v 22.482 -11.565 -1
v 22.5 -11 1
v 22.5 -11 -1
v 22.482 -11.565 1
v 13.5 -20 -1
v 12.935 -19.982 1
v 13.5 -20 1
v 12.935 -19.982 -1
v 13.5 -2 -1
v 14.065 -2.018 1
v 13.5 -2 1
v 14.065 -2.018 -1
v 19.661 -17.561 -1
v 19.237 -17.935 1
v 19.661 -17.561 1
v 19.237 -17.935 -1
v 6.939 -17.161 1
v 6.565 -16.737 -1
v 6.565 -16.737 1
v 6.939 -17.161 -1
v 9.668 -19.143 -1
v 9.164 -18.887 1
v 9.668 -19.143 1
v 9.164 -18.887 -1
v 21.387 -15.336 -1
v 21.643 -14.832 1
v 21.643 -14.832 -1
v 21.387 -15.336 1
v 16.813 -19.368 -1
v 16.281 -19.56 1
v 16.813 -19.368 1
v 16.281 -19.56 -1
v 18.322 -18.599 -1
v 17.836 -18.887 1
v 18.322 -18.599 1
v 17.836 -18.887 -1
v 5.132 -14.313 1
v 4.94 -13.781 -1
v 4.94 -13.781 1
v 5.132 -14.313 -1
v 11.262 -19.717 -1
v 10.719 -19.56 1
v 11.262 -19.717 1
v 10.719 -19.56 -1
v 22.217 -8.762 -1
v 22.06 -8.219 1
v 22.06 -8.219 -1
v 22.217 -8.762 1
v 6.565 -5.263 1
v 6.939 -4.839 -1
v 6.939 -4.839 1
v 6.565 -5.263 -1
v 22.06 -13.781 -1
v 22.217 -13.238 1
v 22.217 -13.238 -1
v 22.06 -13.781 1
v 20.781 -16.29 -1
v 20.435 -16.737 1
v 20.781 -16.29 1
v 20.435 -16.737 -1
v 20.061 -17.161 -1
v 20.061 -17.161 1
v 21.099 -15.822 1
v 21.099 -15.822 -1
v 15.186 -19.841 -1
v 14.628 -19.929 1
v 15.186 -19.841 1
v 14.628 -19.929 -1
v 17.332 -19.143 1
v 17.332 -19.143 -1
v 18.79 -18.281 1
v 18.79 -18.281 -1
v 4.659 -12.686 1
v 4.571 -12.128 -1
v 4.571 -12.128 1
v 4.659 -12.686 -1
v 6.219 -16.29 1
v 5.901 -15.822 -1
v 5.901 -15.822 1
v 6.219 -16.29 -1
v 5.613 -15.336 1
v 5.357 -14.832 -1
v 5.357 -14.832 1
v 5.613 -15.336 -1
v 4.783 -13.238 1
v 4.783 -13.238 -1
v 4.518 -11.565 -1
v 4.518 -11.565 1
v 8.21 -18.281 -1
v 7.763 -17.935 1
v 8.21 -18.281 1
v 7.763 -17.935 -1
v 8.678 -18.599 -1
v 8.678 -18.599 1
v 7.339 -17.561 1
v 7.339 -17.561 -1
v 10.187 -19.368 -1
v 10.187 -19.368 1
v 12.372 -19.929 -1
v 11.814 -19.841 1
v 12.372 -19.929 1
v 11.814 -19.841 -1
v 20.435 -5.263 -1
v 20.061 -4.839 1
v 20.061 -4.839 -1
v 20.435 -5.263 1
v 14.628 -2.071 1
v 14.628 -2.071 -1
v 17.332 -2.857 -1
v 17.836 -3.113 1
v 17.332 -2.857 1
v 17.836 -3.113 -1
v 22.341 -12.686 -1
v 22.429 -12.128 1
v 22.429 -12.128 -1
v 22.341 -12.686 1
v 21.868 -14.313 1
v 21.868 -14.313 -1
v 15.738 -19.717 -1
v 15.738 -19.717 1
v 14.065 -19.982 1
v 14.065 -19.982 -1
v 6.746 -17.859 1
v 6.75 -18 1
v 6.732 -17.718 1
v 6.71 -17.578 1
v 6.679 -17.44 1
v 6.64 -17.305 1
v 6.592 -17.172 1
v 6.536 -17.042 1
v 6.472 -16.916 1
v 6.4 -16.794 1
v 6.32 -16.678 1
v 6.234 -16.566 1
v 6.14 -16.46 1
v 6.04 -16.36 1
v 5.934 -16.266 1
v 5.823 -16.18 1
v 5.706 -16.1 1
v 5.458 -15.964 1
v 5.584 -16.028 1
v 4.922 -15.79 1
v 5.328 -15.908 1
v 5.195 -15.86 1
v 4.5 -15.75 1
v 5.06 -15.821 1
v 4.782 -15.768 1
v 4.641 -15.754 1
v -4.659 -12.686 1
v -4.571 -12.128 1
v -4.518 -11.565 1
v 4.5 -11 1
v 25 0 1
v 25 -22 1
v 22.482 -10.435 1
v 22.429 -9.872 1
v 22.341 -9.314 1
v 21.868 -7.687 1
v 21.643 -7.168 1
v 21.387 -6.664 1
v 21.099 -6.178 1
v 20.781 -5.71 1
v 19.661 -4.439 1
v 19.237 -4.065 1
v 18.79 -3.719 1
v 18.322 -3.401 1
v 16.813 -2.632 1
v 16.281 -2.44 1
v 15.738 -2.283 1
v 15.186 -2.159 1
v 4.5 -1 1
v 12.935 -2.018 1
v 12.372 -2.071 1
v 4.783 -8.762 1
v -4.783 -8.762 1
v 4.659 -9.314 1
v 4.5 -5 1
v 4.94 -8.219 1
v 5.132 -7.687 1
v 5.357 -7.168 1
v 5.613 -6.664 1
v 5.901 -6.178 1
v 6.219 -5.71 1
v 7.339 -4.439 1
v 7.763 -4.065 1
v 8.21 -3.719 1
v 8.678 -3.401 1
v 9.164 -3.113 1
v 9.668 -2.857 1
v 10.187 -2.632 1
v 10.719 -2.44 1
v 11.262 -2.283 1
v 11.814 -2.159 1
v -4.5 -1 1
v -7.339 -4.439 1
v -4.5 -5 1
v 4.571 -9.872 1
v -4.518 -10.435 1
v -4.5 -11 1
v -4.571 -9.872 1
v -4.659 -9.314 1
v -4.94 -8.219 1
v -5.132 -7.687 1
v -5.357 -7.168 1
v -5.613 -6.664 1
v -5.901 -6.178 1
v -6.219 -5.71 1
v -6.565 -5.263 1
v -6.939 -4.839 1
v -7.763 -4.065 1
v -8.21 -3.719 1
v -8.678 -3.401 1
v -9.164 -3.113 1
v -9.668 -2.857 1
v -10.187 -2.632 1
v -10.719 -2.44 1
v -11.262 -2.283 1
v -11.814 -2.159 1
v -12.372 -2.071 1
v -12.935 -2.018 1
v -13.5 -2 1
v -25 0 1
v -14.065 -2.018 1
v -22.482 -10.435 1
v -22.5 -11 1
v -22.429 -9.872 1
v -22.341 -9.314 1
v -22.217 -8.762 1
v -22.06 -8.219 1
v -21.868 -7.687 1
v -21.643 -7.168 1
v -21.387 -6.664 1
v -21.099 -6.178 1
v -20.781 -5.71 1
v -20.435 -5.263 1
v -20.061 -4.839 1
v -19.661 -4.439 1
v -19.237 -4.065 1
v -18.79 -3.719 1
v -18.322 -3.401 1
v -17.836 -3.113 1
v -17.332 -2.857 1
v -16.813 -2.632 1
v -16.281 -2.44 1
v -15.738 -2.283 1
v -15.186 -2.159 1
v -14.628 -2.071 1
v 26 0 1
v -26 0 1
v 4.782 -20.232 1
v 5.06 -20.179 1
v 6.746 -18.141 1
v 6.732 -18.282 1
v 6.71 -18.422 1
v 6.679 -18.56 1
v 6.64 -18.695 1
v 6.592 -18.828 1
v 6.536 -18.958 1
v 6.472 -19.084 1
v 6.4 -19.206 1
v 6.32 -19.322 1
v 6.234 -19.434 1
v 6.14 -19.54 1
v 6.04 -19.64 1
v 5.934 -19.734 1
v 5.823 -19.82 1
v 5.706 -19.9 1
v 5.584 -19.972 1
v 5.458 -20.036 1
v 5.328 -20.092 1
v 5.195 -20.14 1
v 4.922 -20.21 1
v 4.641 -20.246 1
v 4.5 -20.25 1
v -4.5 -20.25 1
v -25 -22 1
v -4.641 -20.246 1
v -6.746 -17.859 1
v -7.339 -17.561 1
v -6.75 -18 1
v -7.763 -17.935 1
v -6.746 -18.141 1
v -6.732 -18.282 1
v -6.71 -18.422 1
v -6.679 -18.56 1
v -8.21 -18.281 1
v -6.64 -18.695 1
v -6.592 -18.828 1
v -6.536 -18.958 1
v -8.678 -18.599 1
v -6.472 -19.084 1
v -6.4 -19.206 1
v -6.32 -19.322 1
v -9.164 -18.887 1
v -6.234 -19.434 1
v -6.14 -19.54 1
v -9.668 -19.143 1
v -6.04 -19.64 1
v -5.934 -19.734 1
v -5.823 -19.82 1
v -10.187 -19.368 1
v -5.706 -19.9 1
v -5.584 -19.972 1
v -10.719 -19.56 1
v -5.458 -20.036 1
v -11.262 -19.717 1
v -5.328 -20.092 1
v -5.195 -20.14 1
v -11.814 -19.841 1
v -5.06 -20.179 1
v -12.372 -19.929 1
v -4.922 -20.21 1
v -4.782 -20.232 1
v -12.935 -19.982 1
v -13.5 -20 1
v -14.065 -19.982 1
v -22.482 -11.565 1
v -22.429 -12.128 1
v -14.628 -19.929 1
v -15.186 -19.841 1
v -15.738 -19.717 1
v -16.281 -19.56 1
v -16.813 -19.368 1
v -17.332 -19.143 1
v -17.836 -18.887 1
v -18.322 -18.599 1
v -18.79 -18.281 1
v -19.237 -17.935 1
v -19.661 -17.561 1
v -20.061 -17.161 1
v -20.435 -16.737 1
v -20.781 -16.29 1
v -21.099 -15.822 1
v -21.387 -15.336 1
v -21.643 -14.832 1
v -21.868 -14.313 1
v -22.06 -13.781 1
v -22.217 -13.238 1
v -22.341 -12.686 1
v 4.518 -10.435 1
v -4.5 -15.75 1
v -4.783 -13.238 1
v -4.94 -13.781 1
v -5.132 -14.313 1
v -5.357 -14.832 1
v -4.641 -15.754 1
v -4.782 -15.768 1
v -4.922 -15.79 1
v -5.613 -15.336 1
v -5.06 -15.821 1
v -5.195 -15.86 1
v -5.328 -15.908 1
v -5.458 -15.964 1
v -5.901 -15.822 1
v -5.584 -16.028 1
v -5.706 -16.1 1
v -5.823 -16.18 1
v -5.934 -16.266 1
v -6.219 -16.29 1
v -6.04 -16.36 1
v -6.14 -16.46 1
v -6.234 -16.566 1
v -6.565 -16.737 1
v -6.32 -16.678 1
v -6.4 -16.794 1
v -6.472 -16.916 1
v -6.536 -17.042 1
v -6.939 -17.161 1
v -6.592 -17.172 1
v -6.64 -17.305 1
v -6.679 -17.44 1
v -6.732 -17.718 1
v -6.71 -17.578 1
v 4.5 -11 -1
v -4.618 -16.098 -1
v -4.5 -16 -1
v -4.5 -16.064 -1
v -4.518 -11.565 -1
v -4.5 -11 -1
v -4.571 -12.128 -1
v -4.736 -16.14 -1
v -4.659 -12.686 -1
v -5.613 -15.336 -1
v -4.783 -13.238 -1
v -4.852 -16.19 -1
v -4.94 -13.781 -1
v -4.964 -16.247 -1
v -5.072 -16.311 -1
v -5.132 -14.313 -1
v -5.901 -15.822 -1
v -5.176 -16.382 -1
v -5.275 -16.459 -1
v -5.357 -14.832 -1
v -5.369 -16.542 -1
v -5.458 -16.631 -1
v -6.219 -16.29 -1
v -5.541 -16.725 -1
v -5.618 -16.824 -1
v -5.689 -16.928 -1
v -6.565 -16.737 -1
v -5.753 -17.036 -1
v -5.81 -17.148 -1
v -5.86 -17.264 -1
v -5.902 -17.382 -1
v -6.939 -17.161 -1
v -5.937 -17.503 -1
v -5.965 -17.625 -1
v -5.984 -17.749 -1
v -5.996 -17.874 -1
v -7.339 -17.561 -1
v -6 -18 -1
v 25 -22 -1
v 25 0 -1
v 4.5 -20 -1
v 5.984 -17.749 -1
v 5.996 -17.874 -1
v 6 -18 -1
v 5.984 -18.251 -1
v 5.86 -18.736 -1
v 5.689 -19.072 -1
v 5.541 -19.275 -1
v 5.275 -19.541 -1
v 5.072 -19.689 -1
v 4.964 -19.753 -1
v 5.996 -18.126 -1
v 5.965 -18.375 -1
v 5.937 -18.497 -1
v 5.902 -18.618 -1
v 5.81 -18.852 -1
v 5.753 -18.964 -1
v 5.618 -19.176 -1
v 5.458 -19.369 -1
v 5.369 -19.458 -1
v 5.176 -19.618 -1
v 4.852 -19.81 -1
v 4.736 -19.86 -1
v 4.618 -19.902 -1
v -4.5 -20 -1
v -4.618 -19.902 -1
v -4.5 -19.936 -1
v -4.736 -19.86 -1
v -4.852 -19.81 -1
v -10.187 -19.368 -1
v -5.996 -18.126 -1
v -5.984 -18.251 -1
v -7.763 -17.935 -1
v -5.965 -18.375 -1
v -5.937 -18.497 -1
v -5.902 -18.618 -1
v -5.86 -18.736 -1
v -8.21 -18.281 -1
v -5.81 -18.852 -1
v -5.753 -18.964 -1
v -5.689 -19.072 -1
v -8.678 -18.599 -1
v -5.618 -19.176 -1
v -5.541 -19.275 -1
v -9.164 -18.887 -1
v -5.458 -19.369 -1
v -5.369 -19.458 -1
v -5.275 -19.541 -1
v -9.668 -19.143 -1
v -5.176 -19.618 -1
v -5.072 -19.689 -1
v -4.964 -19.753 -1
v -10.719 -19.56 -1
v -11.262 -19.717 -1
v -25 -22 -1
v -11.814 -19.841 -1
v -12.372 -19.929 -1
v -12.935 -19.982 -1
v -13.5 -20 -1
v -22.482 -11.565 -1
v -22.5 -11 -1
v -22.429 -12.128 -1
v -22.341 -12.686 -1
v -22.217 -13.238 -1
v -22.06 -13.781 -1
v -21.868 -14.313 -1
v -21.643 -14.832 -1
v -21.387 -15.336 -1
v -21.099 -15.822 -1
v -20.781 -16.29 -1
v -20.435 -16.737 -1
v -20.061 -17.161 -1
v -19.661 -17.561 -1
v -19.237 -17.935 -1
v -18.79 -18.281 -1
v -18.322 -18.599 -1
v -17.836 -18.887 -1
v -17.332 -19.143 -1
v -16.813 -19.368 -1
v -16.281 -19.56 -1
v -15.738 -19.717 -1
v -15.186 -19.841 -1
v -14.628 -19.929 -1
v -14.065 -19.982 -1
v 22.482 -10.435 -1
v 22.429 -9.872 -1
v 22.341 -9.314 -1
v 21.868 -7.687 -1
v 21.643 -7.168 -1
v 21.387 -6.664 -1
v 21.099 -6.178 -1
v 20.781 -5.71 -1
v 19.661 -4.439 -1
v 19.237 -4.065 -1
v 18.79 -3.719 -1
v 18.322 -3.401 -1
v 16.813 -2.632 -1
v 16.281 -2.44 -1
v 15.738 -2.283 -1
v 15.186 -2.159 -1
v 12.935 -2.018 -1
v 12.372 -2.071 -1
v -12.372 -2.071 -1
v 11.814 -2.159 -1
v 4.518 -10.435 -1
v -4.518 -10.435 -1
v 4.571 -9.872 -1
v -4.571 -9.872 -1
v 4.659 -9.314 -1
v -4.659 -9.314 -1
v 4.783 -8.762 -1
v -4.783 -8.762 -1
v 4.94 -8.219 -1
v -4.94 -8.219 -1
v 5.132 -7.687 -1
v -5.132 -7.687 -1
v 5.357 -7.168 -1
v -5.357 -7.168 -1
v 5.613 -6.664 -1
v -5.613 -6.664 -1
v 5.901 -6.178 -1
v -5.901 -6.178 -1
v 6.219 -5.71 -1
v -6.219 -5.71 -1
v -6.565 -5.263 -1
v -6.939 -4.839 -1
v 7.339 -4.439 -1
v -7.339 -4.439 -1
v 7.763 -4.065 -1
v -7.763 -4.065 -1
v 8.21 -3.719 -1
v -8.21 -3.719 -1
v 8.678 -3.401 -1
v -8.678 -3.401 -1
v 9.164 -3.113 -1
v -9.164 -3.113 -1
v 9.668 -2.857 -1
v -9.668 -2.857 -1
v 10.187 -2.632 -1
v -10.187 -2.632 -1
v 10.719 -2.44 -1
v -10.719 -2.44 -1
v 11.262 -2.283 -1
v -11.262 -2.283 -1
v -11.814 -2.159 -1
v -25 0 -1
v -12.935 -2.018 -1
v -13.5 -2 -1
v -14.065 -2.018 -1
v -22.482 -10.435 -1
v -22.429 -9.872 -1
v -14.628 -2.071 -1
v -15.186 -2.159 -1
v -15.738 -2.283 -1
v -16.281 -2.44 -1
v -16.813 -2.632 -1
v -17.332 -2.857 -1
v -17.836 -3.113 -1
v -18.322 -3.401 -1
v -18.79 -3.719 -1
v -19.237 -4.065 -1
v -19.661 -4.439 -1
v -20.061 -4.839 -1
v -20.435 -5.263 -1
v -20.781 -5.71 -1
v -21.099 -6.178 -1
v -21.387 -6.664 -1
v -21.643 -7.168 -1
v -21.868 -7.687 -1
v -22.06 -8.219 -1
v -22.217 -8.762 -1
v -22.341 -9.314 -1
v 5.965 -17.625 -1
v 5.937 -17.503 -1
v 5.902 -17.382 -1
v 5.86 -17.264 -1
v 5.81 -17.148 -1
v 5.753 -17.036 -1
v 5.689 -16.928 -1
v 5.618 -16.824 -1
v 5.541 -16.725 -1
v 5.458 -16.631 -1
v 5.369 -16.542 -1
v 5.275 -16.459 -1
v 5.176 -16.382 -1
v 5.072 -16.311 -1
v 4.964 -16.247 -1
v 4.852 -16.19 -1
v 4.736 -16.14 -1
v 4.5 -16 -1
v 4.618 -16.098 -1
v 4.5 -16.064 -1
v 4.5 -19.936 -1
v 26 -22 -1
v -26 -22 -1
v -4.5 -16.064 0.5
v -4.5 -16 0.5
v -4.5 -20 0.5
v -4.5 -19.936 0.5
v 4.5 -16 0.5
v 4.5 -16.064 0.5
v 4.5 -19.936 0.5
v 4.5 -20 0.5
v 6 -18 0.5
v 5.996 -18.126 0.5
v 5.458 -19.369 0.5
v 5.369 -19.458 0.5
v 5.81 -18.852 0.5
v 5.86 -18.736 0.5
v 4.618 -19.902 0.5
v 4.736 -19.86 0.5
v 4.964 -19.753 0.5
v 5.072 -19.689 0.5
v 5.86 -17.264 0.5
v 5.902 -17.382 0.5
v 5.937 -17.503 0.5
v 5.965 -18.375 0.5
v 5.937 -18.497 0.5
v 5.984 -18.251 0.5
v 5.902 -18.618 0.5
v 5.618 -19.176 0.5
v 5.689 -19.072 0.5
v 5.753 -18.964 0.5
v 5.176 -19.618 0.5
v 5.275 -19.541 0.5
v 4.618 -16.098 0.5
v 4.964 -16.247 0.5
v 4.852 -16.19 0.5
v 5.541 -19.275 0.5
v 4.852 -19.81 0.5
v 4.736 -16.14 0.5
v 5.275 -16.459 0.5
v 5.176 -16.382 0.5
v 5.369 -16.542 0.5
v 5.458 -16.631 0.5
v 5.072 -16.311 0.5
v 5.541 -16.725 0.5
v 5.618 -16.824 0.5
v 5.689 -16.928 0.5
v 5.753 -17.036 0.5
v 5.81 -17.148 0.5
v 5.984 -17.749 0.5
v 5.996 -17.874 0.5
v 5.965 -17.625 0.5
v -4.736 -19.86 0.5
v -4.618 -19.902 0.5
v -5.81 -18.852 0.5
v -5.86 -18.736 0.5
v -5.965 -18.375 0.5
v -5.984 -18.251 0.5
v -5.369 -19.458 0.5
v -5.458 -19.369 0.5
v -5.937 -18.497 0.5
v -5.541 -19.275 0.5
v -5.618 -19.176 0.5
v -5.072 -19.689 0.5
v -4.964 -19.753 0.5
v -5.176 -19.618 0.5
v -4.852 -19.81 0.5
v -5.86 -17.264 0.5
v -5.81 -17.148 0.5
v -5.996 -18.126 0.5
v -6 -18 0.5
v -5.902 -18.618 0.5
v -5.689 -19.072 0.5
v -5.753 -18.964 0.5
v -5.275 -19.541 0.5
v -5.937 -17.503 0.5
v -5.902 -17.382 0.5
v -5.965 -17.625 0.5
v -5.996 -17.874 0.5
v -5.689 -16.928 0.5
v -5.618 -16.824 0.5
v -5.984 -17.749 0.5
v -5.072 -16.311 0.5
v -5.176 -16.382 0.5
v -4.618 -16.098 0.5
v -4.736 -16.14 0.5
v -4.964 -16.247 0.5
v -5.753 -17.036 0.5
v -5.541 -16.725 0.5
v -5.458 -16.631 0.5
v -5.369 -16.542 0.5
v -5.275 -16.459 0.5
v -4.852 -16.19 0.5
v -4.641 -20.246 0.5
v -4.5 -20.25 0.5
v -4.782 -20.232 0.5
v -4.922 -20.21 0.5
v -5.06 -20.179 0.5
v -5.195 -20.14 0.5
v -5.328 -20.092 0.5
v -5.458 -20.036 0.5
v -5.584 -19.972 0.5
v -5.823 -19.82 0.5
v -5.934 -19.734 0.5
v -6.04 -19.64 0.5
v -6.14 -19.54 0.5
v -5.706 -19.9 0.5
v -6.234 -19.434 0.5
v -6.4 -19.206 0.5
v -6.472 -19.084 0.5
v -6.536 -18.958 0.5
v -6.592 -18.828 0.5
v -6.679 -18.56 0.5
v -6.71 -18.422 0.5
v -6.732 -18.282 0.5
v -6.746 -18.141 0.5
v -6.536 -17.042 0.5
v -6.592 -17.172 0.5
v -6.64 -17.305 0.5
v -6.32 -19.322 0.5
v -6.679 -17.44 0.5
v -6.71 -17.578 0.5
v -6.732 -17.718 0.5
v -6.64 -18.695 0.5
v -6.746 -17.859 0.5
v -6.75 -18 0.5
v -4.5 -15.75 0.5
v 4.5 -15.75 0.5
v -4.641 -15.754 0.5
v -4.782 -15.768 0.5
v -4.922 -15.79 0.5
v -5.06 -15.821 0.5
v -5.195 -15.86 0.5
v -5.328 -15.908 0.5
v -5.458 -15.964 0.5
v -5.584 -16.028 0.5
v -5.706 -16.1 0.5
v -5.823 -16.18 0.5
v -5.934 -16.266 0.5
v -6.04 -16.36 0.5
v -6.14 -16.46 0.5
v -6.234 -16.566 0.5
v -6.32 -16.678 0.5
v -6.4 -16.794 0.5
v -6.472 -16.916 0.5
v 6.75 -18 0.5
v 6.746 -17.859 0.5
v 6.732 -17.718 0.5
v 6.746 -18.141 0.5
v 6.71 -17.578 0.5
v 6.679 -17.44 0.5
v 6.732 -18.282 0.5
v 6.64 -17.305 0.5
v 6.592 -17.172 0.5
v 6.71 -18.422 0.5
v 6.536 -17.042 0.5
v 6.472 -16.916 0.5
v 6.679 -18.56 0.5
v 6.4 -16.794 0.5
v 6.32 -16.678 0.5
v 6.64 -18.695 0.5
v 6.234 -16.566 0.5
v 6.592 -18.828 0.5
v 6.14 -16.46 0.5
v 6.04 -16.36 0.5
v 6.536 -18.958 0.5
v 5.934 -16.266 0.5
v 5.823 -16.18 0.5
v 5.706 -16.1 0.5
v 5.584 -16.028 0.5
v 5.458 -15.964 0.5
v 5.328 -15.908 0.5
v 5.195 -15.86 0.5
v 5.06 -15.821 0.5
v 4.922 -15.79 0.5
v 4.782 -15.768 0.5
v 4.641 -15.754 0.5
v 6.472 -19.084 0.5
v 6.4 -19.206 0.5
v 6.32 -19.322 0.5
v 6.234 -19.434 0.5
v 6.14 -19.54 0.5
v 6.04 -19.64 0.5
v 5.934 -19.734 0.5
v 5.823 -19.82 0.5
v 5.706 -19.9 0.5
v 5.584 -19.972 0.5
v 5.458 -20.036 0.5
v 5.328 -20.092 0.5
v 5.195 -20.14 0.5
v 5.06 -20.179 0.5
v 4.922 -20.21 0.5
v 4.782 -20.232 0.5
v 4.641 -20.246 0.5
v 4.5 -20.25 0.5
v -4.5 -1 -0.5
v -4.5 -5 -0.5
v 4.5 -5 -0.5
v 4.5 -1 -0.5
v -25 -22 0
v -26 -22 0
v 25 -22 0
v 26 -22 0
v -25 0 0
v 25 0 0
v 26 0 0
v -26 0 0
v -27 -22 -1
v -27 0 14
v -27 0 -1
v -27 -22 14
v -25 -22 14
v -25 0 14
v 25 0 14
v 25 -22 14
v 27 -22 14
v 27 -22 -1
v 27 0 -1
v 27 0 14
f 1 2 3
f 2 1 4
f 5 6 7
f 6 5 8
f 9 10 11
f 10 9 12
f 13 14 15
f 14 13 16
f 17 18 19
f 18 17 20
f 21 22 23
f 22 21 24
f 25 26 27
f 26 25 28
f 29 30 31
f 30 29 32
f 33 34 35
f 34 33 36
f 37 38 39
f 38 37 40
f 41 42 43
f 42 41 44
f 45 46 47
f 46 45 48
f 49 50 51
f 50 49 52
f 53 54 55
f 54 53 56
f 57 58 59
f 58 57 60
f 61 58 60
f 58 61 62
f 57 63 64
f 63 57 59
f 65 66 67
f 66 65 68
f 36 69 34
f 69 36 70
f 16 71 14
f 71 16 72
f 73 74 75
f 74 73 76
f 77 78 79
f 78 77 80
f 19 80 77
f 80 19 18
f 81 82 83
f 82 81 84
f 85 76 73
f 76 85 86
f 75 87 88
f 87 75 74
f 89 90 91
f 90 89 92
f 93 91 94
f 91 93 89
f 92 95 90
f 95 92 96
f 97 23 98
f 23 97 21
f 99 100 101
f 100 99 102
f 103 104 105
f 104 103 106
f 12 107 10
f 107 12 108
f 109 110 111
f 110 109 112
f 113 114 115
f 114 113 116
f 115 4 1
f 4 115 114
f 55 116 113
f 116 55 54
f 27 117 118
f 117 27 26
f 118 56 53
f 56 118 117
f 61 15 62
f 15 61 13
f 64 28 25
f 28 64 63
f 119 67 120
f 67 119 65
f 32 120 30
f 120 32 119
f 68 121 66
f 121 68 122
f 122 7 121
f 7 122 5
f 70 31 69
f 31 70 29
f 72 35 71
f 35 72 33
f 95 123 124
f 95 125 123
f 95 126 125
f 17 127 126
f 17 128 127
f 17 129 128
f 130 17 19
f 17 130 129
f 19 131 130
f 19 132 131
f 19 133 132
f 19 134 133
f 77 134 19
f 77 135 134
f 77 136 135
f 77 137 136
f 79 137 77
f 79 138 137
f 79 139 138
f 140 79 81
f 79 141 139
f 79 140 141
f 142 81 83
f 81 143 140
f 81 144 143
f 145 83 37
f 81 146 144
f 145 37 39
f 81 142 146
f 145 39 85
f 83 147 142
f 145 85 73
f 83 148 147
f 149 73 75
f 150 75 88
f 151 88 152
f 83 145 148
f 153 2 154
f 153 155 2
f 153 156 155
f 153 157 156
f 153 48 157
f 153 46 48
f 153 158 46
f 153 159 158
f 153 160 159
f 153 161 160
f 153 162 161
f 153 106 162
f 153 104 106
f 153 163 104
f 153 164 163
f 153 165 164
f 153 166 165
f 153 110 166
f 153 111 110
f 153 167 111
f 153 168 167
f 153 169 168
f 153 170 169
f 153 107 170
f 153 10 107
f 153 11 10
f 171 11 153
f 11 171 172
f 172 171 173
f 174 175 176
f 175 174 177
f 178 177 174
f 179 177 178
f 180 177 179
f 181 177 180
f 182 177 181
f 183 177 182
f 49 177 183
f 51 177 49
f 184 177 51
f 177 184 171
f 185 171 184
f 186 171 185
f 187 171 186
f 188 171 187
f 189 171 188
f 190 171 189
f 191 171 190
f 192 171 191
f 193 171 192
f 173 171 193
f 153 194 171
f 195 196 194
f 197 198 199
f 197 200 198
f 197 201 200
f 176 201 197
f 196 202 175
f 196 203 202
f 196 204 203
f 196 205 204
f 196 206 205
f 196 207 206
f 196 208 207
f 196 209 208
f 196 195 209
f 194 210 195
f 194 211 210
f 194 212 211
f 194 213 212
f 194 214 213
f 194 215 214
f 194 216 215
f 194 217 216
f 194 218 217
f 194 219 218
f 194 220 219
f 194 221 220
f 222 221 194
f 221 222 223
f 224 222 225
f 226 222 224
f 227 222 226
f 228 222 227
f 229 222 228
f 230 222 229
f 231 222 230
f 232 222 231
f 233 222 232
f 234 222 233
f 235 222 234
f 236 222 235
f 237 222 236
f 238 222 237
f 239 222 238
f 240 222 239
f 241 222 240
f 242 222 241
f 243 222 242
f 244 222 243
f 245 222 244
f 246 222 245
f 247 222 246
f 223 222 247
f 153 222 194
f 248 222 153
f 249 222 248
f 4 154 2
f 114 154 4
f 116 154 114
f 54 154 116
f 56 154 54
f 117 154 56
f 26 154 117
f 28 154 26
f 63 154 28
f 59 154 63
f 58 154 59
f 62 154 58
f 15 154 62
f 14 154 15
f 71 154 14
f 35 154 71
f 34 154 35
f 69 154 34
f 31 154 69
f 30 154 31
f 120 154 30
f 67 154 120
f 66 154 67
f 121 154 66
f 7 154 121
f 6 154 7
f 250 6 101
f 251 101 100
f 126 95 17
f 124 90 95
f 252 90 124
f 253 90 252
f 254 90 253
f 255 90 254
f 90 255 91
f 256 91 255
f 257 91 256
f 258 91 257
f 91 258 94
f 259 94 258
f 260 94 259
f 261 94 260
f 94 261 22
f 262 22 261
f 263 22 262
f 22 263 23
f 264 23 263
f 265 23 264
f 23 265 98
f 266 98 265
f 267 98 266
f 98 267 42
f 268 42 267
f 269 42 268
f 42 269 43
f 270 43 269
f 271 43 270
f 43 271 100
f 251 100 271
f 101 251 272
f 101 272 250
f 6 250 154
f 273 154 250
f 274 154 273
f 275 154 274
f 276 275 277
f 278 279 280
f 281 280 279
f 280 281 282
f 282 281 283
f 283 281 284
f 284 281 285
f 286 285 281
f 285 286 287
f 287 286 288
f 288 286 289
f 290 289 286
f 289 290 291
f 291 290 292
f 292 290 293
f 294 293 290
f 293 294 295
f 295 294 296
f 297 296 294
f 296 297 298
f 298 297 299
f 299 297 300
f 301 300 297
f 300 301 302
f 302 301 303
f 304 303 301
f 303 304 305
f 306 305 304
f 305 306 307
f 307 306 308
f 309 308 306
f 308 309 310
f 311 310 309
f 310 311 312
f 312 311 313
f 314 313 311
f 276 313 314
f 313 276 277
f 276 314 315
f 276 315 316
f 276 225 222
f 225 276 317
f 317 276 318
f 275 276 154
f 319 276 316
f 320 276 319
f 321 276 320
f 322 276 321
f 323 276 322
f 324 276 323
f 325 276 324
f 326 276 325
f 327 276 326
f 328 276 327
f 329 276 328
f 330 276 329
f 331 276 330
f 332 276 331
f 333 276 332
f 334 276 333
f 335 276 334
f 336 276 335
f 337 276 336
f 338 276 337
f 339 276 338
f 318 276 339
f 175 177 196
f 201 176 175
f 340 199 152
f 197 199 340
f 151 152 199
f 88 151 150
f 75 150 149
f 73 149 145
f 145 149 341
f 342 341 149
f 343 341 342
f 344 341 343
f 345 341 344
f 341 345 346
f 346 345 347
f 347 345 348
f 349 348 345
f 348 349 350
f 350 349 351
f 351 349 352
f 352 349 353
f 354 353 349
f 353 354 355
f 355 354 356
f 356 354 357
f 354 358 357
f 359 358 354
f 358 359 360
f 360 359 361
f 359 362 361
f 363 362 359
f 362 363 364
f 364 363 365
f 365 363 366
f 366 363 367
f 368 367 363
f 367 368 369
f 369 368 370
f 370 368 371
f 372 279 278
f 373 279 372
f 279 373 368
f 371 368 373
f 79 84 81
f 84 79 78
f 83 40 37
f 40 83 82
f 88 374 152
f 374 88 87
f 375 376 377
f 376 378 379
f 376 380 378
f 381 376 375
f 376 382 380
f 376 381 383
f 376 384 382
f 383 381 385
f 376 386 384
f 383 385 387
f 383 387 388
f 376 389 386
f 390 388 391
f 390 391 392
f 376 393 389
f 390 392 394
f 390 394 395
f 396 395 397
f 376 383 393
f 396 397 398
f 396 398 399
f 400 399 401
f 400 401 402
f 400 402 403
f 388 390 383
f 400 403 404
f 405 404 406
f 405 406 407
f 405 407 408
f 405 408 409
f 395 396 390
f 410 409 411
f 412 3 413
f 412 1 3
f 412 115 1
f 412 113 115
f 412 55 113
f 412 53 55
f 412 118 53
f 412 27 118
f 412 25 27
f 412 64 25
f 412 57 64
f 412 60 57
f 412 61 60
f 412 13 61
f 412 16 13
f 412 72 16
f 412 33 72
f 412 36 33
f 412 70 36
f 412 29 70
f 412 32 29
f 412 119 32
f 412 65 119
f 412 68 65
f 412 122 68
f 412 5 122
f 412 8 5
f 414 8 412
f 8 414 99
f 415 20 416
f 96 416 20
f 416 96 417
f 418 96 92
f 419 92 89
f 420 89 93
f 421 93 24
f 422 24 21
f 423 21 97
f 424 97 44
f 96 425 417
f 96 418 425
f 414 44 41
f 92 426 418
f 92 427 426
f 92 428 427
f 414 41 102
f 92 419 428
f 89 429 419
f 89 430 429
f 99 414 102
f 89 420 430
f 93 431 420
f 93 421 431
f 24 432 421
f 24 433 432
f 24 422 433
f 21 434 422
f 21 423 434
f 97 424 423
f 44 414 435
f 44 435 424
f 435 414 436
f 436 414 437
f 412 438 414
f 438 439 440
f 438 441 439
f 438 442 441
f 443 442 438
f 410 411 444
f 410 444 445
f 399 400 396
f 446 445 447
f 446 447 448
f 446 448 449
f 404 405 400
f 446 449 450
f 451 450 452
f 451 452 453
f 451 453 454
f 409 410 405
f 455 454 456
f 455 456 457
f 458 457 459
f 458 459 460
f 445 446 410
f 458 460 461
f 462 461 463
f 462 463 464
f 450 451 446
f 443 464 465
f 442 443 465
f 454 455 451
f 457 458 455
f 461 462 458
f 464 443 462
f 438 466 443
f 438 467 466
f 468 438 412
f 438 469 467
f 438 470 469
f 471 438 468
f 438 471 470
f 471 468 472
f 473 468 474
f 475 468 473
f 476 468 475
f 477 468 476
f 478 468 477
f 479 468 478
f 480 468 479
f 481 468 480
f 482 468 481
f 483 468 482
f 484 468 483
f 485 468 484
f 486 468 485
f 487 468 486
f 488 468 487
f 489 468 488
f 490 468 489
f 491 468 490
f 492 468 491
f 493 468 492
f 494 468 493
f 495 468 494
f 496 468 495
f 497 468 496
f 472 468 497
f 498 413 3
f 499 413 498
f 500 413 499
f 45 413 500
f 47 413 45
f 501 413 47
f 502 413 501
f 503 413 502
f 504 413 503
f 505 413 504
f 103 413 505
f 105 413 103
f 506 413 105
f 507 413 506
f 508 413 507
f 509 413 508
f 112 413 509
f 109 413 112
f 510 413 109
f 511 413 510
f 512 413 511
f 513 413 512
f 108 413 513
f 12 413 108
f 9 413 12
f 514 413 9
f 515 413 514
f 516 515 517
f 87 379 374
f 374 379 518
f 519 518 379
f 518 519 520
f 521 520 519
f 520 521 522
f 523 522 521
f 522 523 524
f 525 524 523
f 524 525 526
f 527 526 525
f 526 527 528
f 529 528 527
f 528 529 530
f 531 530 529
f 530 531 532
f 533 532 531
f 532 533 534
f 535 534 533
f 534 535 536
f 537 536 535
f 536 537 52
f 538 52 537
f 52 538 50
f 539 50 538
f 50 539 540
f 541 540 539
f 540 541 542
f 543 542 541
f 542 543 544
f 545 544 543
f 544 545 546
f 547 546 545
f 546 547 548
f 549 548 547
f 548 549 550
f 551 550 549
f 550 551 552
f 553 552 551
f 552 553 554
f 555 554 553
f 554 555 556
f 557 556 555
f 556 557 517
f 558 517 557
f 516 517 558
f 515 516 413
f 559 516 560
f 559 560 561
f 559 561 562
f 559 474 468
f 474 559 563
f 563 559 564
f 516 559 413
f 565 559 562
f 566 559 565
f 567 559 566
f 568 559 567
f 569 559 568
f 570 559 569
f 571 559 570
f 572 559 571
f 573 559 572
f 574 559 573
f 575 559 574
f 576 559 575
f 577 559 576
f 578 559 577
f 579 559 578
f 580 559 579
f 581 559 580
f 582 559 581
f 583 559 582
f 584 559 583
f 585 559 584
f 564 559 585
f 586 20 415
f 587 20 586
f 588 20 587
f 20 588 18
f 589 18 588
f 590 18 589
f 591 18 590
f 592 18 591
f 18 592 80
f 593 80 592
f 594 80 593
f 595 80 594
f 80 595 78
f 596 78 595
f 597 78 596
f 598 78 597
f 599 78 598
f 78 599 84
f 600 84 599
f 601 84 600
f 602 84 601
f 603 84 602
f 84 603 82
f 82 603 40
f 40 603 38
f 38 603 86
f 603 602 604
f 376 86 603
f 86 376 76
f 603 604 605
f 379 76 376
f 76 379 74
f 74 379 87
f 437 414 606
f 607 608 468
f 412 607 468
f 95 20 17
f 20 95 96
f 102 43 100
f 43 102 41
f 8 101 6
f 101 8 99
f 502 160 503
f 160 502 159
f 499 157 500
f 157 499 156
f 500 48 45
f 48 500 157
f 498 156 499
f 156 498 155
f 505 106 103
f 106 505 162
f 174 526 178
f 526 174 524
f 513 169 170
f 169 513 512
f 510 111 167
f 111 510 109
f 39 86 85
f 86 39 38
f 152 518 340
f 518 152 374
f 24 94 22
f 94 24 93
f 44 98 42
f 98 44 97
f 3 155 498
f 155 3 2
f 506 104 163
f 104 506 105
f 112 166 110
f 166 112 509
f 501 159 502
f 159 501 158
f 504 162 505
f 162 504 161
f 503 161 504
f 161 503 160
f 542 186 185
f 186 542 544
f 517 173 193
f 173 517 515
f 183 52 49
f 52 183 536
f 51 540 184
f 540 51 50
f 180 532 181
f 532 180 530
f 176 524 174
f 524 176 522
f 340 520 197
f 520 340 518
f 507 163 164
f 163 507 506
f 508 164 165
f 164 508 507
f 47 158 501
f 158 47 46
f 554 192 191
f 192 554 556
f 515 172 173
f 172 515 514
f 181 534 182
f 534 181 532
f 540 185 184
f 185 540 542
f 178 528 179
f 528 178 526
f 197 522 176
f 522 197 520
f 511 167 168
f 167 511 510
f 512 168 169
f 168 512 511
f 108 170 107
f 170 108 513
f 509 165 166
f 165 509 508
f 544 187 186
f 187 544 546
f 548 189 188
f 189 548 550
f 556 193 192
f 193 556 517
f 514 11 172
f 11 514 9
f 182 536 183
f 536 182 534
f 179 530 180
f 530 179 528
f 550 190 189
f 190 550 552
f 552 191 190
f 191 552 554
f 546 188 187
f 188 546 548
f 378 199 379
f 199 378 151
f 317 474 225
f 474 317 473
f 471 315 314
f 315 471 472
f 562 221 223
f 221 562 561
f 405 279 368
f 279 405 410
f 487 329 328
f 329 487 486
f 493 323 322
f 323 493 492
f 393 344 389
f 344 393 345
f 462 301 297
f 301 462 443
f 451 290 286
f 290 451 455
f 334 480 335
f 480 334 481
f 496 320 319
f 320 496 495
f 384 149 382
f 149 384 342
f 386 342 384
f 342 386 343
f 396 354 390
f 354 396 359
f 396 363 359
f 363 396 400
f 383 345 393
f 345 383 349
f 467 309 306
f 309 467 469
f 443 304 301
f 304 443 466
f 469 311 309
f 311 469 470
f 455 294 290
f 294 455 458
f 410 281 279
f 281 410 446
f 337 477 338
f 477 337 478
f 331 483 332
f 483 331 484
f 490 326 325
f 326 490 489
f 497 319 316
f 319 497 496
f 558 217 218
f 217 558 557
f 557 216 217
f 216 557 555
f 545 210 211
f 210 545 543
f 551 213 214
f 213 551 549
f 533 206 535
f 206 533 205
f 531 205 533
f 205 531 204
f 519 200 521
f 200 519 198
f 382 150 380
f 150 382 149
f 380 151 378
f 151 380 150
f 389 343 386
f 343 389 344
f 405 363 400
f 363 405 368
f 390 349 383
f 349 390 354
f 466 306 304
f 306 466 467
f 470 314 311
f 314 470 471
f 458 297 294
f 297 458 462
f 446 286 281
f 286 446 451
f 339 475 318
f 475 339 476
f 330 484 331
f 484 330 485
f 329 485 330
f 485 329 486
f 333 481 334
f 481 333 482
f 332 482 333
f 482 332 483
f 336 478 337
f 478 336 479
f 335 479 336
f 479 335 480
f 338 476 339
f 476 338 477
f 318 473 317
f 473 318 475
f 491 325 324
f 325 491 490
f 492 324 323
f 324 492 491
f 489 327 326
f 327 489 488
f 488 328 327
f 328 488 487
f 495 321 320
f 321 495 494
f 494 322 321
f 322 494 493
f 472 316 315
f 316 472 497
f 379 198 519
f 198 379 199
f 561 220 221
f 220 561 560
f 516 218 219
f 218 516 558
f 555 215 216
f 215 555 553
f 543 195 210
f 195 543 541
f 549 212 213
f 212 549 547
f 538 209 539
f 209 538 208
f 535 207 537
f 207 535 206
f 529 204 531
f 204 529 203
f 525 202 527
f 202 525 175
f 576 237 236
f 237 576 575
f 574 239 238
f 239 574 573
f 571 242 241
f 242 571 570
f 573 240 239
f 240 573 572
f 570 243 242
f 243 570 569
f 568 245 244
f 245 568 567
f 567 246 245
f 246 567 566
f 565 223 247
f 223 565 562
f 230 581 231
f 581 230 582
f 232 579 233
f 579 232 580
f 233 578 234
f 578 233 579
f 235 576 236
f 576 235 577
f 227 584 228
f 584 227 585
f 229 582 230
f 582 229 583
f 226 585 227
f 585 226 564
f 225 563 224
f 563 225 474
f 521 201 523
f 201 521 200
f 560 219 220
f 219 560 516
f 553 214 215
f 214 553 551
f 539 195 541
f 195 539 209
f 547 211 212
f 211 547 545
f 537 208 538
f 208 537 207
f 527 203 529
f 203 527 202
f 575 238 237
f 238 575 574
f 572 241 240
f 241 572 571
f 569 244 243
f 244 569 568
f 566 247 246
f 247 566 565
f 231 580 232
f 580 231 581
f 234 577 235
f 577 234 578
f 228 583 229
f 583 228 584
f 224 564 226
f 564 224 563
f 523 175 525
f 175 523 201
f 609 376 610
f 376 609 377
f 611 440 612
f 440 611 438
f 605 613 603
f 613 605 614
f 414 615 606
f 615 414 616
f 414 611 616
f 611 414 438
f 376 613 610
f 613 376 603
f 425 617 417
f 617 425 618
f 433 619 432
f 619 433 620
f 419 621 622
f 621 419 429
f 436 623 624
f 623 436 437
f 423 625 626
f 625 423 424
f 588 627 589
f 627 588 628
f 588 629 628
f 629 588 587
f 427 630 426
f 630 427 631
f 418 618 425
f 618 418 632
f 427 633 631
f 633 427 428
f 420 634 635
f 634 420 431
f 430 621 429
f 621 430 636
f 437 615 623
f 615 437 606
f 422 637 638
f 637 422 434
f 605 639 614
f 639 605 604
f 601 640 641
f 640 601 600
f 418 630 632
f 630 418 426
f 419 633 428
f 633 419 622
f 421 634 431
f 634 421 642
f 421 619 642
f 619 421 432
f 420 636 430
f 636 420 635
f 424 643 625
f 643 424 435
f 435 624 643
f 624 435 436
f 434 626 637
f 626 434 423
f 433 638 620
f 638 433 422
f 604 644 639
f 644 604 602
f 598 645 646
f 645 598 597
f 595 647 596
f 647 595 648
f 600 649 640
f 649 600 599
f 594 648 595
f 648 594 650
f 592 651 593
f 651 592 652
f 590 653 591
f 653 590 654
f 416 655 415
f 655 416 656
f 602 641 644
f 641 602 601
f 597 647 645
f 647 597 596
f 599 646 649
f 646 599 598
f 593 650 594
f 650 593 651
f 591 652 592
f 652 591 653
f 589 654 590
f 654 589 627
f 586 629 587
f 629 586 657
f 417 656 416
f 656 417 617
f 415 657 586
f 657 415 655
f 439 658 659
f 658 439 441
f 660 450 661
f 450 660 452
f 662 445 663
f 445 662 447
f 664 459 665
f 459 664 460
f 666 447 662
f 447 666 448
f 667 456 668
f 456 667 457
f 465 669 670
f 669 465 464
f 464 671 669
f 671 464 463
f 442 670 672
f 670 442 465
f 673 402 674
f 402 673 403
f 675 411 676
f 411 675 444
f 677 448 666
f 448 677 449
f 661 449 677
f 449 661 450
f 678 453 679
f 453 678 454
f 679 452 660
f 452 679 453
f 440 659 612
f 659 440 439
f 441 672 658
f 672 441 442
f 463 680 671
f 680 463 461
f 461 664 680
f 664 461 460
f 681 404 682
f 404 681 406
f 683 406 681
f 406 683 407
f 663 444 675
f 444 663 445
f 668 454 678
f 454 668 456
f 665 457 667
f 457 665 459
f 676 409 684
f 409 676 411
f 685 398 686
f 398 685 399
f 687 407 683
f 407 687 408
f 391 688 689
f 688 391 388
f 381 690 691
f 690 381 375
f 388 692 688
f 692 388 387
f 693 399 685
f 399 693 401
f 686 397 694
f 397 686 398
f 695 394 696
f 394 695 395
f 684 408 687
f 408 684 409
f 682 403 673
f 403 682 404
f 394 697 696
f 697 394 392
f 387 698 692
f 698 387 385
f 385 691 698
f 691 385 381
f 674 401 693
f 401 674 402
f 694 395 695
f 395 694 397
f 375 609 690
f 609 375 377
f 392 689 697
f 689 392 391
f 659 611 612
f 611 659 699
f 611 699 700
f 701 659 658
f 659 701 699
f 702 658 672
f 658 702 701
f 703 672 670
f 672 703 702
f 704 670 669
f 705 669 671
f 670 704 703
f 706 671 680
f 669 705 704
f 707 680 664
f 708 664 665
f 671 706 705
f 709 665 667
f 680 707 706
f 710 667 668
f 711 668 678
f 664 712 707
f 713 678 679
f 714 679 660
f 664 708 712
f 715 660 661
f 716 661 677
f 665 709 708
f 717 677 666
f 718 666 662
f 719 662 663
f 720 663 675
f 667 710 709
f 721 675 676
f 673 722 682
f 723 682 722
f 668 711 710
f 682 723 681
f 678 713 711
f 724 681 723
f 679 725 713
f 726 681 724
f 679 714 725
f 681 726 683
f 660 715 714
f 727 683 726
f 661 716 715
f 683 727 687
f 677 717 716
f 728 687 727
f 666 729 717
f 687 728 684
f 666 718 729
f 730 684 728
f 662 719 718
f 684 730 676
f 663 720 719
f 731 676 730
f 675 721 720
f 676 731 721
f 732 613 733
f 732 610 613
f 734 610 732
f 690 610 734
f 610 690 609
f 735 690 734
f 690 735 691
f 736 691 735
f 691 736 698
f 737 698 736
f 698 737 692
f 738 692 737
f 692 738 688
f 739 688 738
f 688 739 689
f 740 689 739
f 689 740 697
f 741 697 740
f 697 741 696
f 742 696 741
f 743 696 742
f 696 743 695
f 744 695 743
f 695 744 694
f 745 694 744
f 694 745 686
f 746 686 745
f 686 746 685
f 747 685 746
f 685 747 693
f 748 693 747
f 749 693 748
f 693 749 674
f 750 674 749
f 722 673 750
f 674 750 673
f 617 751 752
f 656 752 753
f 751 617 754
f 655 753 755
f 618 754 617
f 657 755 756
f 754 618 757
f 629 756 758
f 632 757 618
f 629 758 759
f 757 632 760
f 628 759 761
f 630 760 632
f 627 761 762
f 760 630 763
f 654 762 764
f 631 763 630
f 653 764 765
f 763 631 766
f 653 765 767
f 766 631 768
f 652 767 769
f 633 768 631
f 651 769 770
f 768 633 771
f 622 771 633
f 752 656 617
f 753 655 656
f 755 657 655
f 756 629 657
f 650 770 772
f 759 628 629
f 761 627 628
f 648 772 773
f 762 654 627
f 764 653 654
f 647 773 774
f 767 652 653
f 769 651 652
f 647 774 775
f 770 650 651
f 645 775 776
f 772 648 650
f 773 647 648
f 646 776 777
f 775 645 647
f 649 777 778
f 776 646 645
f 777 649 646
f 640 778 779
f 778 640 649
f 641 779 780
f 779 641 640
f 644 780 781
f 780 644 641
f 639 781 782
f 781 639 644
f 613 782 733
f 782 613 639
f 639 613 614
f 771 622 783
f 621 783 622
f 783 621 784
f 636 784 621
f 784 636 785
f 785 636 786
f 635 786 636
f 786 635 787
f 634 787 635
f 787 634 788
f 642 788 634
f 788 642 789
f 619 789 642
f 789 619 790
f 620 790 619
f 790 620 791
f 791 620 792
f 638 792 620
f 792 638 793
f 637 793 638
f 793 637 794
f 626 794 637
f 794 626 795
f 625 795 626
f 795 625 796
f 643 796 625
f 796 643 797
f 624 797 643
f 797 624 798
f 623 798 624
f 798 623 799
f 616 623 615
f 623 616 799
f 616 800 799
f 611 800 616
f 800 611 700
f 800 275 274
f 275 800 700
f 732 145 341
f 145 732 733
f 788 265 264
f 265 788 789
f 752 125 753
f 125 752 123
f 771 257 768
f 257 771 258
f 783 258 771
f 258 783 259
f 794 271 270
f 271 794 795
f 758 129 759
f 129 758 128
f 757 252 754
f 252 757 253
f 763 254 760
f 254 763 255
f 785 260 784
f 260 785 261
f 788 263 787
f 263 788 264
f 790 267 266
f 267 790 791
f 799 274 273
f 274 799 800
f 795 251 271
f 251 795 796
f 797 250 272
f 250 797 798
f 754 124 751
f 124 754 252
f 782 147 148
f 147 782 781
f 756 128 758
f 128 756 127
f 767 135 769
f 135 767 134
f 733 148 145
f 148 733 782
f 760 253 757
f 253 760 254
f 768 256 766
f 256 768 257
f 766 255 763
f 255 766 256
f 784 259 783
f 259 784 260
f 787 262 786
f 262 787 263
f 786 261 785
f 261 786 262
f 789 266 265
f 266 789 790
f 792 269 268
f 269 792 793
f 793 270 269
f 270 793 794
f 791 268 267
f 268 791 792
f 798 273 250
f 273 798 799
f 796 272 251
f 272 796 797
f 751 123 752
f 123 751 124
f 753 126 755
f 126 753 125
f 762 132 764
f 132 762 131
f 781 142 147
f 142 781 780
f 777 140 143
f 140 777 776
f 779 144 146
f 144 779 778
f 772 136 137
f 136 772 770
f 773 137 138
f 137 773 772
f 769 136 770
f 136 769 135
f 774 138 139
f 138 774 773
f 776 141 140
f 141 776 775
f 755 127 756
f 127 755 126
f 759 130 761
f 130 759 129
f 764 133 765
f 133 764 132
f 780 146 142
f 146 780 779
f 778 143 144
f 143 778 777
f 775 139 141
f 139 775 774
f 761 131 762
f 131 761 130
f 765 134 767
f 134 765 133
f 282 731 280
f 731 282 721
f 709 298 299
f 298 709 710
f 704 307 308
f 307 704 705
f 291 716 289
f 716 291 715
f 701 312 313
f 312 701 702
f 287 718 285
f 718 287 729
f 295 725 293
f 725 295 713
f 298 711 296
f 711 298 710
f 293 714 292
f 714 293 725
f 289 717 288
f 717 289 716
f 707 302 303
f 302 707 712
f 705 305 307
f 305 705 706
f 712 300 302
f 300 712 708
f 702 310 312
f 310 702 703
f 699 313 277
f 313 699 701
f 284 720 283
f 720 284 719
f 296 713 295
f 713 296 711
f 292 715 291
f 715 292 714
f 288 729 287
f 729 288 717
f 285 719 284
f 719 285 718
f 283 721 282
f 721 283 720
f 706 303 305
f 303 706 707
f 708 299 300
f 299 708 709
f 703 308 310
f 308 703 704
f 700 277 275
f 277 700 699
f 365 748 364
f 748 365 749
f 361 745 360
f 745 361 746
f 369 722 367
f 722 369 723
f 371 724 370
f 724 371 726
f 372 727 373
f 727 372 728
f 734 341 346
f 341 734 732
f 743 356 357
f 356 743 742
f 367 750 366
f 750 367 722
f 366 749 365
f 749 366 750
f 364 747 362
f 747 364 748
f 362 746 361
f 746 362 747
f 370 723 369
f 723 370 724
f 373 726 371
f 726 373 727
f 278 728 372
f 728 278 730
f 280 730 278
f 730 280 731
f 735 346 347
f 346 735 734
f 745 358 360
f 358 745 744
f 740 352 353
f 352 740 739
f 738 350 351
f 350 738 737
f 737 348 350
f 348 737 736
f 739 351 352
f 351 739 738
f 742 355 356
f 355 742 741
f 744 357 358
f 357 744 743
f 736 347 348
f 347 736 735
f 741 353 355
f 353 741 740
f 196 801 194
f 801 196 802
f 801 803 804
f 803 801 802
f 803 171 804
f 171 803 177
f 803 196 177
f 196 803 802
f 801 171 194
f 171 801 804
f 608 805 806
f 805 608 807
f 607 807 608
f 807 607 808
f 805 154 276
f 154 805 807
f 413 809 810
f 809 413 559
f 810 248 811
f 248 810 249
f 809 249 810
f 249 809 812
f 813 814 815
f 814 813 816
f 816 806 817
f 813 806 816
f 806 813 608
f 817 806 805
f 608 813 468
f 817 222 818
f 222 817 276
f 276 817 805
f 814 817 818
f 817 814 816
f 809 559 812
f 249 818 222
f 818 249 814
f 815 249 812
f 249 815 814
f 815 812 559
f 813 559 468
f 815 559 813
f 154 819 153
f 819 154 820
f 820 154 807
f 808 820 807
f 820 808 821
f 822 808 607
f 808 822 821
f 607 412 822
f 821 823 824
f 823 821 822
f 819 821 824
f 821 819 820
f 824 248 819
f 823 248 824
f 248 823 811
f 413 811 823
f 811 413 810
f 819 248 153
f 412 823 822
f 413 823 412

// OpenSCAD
// HC-sr04 stand with walls
$fn=100;

module hc_sr04(thickness=2,padding=2){
    width=50;
    height=20;
    sonic_r=8;
    support_width=15;
    
    union(){
        rotate([90,0,0]) translate([0,(height+padding)/2,0]) {
            difference(){
                cube([width+padding,height+padding,thickness], center=true);

                union(){
                    translate([13.5,0,-thickness/2]) cylinder(h=thickness,r=sonic_r+padding/2);
                    translate([-13.5,0,-thickness/2]) cylinder(h=thickness,r=sonic_r+padding/2);
                    translate([0,height/2-3,0]) cube([9,4,thickness], center=true);
                    translate([4,height/2-3,0]) cylinder(r=2,h=thickness, center=true);
                    translate([-4,height/2-3,0]) cylinder(r=2,h=thickness, center=true);
                    
                    down=0.5;
                    translate([0,height/2-3,-thickness+down]) cube([9,4.5,thickness], center=true);
                    translate([4.5,height/2-3,-thickness+down]) cylinder(r=2.25,h=thickness, center=true);
                    translate([-4.5,height/2-3,-thickness+down]) cylinder(r=2.25,h=thickness, center=true);
                    
                    translate([0,-height/2+2,-thickness/4]) cube([9,4,thickness], center=true);
                }
            }
        }
        translate([-thickness/2-(width+padding)/2,-thickness/2,0]) cube([thickness,support_width,height+padding]);
        translate([-thickness/2+(width+padding)/2,-thickness/2,0]) cube([thickness,support_width,height+padding]);
    }
    
}

rotate([90,0,0]) hc_sr04();
